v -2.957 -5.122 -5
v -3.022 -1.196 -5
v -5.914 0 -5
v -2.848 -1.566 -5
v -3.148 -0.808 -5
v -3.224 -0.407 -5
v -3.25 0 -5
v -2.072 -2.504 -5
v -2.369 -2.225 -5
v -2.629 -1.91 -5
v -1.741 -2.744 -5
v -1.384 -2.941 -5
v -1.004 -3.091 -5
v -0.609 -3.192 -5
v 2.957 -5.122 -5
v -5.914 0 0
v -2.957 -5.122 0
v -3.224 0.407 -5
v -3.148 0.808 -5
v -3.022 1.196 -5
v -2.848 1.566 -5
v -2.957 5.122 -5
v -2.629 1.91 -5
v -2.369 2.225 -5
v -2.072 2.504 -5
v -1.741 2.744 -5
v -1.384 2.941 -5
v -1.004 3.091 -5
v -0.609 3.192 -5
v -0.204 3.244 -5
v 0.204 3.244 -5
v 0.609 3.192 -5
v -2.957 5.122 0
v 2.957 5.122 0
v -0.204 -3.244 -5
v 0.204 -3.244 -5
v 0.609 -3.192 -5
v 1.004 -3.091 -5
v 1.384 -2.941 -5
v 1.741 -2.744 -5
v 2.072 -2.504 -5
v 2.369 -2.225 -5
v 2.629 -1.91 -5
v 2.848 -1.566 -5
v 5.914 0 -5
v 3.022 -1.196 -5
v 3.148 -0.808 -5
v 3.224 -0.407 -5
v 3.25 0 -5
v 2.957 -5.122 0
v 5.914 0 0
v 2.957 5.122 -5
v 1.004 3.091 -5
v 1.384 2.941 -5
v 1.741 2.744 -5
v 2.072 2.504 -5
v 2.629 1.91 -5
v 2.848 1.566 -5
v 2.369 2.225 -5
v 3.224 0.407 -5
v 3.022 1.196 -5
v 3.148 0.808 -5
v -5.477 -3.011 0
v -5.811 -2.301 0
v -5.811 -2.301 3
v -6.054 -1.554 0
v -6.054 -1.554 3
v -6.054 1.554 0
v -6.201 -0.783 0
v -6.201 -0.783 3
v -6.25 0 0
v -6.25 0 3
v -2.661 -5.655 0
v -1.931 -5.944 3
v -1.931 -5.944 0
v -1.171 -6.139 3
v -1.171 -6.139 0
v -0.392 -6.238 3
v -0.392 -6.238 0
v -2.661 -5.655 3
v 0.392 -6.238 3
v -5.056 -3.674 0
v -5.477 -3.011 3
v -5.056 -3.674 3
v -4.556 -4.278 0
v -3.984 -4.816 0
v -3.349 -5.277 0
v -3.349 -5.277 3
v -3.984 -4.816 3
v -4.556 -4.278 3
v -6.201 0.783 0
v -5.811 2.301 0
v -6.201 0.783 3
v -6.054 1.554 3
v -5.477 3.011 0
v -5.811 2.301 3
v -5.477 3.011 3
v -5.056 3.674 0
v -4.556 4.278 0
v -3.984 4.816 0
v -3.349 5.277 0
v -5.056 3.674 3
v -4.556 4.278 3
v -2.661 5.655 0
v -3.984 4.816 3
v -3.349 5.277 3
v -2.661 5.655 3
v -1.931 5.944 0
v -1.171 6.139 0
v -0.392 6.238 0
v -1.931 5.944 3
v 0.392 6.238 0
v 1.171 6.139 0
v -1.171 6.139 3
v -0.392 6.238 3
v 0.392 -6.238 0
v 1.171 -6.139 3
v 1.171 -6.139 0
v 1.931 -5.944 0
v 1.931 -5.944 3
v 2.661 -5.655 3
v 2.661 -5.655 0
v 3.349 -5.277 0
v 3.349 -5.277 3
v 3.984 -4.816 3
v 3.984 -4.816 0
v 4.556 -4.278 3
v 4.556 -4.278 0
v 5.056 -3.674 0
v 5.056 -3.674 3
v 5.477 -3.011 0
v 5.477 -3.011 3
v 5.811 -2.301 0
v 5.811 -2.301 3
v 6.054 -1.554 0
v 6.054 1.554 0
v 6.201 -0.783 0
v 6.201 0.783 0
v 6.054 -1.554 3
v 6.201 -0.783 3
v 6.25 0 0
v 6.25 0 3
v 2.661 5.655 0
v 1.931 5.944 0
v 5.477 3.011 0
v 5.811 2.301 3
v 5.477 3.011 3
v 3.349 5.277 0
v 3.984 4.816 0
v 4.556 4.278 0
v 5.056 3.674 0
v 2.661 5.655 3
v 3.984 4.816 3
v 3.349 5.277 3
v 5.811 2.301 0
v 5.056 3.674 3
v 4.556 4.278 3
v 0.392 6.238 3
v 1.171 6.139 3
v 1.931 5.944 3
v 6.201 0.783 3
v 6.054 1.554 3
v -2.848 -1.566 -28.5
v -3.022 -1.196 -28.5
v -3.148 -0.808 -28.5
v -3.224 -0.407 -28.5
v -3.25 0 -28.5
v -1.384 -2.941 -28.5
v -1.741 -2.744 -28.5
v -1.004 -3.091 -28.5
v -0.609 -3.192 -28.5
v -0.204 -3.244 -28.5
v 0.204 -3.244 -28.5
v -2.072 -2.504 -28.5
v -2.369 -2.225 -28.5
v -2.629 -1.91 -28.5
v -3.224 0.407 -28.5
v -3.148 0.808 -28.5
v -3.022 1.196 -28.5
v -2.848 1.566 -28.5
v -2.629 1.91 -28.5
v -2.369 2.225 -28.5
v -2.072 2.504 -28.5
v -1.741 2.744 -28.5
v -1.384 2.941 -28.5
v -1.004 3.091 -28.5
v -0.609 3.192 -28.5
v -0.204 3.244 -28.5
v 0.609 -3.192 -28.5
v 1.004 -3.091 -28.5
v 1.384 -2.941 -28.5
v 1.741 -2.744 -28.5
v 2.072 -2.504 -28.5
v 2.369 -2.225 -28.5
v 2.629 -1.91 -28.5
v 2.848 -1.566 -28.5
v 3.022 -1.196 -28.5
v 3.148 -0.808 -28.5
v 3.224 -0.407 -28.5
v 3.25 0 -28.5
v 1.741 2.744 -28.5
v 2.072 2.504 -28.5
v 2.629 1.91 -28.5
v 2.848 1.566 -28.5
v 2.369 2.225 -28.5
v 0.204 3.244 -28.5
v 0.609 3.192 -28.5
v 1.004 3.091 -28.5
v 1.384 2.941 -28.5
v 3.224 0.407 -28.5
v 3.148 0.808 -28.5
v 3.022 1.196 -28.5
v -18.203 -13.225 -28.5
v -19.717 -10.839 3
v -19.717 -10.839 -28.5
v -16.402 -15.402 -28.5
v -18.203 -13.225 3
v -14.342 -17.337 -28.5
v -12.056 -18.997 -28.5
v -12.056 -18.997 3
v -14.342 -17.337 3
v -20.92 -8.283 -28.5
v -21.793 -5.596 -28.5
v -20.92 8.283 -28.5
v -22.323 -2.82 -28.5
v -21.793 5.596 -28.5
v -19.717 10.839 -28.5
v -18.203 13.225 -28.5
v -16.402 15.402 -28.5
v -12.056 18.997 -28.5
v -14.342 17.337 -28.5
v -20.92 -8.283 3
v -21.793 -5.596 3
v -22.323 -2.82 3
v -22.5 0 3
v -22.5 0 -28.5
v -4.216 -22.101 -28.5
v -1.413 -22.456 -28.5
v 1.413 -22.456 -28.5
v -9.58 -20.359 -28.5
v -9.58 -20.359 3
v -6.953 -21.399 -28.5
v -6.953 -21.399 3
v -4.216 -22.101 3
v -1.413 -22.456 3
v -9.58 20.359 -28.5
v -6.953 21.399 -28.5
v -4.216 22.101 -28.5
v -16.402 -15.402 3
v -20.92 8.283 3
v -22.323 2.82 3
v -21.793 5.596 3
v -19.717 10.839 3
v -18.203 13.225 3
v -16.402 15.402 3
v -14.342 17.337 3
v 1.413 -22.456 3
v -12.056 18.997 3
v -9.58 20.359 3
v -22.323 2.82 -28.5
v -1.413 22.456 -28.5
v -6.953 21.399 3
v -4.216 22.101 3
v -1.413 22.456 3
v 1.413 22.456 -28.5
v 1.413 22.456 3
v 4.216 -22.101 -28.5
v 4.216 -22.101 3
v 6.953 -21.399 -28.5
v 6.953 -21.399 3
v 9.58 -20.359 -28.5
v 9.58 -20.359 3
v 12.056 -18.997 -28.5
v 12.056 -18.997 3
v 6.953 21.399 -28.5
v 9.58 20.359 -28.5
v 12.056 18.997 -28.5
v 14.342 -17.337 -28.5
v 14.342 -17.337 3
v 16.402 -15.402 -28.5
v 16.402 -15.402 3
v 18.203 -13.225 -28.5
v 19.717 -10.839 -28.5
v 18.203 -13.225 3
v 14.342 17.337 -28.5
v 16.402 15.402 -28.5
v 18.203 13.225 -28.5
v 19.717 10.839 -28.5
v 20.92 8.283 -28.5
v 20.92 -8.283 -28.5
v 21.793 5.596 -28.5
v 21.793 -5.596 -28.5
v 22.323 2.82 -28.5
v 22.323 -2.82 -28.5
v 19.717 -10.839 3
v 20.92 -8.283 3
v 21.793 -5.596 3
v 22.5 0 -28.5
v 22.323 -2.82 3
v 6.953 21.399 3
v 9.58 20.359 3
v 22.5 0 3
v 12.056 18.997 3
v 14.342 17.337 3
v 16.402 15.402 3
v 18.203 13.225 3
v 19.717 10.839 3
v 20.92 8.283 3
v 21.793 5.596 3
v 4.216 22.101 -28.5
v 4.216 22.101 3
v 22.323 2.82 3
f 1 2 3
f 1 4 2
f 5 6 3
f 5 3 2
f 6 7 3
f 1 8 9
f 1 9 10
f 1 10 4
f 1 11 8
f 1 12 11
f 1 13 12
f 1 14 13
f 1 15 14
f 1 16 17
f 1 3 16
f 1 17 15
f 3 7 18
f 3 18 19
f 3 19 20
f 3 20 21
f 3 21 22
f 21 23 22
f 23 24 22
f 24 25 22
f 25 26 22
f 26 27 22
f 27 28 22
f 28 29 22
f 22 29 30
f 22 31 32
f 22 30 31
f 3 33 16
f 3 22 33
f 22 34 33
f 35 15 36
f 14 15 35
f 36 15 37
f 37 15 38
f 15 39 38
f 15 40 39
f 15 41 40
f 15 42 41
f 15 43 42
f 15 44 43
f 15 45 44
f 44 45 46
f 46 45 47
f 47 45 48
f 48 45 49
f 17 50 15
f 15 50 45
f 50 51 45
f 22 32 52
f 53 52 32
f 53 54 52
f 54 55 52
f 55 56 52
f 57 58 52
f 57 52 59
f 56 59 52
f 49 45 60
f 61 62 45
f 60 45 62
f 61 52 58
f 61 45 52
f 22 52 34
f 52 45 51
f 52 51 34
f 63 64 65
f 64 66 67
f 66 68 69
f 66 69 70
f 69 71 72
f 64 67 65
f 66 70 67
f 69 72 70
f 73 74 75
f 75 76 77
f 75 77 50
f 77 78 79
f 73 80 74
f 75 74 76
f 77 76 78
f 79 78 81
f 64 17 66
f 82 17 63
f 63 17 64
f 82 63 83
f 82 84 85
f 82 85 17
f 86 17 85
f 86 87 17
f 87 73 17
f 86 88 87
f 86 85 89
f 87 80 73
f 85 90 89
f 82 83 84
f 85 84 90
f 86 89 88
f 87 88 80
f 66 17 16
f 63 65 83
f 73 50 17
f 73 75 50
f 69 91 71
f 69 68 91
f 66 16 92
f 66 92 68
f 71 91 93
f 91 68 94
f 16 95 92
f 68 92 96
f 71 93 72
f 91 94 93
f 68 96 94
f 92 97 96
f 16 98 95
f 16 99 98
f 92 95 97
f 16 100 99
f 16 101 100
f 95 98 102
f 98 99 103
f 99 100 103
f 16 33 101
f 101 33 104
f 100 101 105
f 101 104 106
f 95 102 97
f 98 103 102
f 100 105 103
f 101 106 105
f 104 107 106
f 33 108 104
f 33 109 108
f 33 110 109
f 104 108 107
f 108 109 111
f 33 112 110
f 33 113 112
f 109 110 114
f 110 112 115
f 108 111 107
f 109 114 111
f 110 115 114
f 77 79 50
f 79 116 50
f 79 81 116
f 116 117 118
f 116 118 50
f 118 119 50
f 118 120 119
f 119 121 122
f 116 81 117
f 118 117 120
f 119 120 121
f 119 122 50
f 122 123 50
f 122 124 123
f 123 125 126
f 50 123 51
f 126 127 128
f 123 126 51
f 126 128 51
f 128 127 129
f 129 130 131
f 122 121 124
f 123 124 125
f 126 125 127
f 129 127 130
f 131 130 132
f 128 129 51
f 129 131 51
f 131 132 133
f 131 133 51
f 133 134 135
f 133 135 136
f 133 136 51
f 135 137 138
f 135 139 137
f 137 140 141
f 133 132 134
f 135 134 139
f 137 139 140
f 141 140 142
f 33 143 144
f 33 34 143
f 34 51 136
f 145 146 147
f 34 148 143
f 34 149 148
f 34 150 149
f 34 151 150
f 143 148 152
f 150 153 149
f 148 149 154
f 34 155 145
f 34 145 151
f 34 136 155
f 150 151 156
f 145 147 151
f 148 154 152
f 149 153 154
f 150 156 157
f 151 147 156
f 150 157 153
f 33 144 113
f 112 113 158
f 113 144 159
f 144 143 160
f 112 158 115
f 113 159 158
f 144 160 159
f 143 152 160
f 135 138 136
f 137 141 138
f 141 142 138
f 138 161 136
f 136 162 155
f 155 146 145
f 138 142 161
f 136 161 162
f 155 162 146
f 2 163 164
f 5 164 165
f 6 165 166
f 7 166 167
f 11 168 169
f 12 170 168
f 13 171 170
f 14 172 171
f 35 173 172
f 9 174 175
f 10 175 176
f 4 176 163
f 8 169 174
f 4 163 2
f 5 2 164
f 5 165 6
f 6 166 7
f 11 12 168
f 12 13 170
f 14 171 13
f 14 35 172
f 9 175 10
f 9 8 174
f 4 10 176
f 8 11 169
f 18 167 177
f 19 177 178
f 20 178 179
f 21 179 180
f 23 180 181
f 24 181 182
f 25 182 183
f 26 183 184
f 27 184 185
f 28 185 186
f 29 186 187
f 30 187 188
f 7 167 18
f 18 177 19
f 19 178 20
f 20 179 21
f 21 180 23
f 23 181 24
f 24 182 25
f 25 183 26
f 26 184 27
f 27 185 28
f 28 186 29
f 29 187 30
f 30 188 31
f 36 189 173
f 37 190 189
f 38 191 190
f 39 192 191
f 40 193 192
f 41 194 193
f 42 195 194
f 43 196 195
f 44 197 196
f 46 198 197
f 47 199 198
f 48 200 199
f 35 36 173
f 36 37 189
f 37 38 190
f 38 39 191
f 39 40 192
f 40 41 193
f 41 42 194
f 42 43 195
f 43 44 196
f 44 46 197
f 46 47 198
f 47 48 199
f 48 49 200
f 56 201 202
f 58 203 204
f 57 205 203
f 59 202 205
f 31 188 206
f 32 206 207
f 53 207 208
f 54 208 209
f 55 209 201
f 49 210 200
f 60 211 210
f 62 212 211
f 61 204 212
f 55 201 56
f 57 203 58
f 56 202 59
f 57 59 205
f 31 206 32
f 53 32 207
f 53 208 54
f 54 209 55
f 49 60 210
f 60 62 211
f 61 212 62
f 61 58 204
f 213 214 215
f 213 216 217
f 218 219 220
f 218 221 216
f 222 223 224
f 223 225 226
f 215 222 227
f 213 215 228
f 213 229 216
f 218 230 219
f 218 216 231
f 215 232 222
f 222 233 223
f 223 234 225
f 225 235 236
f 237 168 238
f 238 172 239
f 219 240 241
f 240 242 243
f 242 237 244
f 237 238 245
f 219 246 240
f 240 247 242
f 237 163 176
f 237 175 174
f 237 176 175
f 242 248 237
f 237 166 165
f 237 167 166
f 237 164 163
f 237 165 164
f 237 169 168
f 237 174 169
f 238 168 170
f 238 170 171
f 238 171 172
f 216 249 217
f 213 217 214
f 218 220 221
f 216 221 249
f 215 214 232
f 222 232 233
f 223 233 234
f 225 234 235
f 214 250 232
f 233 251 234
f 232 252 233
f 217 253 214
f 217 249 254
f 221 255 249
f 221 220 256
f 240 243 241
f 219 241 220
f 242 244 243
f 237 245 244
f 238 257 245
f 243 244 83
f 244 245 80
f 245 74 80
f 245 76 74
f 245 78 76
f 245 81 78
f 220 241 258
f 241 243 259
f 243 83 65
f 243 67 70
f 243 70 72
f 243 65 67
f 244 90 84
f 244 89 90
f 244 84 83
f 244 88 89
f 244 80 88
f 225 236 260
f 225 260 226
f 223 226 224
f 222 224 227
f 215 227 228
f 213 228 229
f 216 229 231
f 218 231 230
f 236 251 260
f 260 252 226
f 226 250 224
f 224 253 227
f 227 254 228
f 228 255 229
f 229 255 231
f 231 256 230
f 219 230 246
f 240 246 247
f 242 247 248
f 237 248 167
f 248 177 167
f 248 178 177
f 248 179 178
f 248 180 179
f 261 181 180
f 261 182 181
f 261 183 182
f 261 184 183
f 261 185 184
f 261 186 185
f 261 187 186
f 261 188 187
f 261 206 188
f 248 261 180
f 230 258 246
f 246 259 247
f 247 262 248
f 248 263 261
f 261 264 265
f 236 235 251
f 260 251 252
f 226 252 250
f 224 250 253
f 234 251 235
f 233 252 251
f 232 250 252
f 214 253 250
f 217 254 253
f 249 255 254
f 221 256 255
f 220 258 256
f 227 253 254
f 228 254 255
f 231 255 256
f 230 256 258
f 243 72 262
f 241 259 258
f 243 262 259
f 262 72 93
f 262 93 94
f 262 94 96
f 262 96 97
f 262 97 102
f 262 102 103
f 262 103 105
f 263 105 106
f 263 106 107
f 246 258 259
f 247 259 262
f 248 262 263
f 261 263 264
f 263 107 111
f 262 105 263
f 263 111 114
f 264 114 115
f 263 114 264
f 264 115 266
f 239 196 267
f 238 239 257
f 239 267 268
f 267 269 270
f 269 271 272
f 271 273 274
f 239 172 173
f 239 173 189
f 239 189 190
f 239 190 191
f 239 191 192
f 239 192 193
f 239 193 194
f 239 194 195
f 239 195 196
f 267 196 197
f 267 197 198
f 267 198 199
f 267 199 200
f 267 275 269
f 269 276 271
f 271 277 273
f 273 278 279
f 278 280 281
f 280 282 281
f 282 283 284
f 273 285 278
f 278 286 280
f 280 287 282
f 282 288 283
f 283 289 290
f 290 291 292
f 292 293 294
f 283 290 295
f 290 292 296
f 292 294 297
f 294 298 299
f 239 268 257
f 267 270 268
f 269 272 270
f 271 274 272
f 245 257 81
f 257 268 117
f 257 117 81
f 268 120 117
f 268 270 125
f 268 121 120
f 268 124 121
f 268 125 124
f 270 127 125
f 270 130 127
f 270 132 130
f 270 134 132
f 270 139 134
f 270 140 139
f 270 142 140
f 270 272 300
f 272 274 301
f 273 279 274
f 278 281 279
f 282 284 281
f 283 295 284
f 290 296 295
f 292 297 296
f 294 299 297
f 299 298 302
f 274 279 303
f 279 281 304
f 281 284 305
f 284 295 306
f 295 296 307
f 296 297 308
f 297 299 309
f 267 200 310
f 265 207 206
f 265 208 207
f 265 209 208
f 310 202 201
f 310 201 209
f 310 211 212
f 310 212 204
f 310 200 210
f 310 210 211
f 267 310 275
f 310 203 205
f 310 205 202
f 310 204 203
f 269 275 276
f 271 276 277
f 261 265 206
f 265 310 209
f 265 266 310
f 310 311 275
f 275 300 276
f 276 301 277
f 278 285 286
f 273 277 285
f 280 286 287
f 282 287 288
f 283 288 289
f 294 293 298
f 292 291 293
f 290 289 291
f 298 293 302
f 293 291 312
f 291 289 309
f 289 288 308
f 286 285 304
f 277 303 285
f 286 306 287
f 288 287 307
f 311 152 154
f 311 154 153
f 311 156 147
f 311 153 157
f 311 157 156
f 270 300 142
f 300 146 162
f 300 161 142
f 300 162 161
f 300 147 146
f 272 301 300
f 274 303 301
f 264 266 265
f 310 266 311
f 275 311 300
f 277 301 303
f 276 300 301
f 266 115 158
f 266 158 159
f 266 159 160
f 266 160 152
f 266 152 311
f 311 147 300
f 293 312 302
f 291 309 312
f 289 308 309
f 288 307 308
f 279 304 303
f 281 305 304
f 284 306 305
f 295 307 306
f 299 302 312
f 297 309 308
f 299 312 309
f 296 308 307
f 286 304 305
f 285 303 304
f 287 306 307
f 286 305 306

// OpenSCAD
$fn = 50;

difference() {
	union() {
		translate(v = [0, 0, -28.5]) {
			cylinder(h = 31.5, r = 22.5);
		}
	}
	union() {
		translate(v = [0, 0, 0]) {
			rotate(a = [0, 0, 0]) {
				difference() {
					union() {
						translate(v = [0, 0, -5]) {
							linear_extrude(height = 5) {
								polygon(points = [[5.914249999999999, 0.0], [2.957125, 5.1218907443321156], [-2.9571249999999982, 5.1218907443321156], [-5.914249999999999, 7.242867331857232e-16], [-2.9571250000000022, -5.121890744332115], [2.9571249999999956, -5.121890744332118]]);
							}
						}
					}
					union();
				}
			}
		}
		#cylinder(h = 3, r = 6.25);
		#translate(v = [0, 0, -100.0]) {
			cylinder(h = 200, r = 3.25);
		}
	}
}
